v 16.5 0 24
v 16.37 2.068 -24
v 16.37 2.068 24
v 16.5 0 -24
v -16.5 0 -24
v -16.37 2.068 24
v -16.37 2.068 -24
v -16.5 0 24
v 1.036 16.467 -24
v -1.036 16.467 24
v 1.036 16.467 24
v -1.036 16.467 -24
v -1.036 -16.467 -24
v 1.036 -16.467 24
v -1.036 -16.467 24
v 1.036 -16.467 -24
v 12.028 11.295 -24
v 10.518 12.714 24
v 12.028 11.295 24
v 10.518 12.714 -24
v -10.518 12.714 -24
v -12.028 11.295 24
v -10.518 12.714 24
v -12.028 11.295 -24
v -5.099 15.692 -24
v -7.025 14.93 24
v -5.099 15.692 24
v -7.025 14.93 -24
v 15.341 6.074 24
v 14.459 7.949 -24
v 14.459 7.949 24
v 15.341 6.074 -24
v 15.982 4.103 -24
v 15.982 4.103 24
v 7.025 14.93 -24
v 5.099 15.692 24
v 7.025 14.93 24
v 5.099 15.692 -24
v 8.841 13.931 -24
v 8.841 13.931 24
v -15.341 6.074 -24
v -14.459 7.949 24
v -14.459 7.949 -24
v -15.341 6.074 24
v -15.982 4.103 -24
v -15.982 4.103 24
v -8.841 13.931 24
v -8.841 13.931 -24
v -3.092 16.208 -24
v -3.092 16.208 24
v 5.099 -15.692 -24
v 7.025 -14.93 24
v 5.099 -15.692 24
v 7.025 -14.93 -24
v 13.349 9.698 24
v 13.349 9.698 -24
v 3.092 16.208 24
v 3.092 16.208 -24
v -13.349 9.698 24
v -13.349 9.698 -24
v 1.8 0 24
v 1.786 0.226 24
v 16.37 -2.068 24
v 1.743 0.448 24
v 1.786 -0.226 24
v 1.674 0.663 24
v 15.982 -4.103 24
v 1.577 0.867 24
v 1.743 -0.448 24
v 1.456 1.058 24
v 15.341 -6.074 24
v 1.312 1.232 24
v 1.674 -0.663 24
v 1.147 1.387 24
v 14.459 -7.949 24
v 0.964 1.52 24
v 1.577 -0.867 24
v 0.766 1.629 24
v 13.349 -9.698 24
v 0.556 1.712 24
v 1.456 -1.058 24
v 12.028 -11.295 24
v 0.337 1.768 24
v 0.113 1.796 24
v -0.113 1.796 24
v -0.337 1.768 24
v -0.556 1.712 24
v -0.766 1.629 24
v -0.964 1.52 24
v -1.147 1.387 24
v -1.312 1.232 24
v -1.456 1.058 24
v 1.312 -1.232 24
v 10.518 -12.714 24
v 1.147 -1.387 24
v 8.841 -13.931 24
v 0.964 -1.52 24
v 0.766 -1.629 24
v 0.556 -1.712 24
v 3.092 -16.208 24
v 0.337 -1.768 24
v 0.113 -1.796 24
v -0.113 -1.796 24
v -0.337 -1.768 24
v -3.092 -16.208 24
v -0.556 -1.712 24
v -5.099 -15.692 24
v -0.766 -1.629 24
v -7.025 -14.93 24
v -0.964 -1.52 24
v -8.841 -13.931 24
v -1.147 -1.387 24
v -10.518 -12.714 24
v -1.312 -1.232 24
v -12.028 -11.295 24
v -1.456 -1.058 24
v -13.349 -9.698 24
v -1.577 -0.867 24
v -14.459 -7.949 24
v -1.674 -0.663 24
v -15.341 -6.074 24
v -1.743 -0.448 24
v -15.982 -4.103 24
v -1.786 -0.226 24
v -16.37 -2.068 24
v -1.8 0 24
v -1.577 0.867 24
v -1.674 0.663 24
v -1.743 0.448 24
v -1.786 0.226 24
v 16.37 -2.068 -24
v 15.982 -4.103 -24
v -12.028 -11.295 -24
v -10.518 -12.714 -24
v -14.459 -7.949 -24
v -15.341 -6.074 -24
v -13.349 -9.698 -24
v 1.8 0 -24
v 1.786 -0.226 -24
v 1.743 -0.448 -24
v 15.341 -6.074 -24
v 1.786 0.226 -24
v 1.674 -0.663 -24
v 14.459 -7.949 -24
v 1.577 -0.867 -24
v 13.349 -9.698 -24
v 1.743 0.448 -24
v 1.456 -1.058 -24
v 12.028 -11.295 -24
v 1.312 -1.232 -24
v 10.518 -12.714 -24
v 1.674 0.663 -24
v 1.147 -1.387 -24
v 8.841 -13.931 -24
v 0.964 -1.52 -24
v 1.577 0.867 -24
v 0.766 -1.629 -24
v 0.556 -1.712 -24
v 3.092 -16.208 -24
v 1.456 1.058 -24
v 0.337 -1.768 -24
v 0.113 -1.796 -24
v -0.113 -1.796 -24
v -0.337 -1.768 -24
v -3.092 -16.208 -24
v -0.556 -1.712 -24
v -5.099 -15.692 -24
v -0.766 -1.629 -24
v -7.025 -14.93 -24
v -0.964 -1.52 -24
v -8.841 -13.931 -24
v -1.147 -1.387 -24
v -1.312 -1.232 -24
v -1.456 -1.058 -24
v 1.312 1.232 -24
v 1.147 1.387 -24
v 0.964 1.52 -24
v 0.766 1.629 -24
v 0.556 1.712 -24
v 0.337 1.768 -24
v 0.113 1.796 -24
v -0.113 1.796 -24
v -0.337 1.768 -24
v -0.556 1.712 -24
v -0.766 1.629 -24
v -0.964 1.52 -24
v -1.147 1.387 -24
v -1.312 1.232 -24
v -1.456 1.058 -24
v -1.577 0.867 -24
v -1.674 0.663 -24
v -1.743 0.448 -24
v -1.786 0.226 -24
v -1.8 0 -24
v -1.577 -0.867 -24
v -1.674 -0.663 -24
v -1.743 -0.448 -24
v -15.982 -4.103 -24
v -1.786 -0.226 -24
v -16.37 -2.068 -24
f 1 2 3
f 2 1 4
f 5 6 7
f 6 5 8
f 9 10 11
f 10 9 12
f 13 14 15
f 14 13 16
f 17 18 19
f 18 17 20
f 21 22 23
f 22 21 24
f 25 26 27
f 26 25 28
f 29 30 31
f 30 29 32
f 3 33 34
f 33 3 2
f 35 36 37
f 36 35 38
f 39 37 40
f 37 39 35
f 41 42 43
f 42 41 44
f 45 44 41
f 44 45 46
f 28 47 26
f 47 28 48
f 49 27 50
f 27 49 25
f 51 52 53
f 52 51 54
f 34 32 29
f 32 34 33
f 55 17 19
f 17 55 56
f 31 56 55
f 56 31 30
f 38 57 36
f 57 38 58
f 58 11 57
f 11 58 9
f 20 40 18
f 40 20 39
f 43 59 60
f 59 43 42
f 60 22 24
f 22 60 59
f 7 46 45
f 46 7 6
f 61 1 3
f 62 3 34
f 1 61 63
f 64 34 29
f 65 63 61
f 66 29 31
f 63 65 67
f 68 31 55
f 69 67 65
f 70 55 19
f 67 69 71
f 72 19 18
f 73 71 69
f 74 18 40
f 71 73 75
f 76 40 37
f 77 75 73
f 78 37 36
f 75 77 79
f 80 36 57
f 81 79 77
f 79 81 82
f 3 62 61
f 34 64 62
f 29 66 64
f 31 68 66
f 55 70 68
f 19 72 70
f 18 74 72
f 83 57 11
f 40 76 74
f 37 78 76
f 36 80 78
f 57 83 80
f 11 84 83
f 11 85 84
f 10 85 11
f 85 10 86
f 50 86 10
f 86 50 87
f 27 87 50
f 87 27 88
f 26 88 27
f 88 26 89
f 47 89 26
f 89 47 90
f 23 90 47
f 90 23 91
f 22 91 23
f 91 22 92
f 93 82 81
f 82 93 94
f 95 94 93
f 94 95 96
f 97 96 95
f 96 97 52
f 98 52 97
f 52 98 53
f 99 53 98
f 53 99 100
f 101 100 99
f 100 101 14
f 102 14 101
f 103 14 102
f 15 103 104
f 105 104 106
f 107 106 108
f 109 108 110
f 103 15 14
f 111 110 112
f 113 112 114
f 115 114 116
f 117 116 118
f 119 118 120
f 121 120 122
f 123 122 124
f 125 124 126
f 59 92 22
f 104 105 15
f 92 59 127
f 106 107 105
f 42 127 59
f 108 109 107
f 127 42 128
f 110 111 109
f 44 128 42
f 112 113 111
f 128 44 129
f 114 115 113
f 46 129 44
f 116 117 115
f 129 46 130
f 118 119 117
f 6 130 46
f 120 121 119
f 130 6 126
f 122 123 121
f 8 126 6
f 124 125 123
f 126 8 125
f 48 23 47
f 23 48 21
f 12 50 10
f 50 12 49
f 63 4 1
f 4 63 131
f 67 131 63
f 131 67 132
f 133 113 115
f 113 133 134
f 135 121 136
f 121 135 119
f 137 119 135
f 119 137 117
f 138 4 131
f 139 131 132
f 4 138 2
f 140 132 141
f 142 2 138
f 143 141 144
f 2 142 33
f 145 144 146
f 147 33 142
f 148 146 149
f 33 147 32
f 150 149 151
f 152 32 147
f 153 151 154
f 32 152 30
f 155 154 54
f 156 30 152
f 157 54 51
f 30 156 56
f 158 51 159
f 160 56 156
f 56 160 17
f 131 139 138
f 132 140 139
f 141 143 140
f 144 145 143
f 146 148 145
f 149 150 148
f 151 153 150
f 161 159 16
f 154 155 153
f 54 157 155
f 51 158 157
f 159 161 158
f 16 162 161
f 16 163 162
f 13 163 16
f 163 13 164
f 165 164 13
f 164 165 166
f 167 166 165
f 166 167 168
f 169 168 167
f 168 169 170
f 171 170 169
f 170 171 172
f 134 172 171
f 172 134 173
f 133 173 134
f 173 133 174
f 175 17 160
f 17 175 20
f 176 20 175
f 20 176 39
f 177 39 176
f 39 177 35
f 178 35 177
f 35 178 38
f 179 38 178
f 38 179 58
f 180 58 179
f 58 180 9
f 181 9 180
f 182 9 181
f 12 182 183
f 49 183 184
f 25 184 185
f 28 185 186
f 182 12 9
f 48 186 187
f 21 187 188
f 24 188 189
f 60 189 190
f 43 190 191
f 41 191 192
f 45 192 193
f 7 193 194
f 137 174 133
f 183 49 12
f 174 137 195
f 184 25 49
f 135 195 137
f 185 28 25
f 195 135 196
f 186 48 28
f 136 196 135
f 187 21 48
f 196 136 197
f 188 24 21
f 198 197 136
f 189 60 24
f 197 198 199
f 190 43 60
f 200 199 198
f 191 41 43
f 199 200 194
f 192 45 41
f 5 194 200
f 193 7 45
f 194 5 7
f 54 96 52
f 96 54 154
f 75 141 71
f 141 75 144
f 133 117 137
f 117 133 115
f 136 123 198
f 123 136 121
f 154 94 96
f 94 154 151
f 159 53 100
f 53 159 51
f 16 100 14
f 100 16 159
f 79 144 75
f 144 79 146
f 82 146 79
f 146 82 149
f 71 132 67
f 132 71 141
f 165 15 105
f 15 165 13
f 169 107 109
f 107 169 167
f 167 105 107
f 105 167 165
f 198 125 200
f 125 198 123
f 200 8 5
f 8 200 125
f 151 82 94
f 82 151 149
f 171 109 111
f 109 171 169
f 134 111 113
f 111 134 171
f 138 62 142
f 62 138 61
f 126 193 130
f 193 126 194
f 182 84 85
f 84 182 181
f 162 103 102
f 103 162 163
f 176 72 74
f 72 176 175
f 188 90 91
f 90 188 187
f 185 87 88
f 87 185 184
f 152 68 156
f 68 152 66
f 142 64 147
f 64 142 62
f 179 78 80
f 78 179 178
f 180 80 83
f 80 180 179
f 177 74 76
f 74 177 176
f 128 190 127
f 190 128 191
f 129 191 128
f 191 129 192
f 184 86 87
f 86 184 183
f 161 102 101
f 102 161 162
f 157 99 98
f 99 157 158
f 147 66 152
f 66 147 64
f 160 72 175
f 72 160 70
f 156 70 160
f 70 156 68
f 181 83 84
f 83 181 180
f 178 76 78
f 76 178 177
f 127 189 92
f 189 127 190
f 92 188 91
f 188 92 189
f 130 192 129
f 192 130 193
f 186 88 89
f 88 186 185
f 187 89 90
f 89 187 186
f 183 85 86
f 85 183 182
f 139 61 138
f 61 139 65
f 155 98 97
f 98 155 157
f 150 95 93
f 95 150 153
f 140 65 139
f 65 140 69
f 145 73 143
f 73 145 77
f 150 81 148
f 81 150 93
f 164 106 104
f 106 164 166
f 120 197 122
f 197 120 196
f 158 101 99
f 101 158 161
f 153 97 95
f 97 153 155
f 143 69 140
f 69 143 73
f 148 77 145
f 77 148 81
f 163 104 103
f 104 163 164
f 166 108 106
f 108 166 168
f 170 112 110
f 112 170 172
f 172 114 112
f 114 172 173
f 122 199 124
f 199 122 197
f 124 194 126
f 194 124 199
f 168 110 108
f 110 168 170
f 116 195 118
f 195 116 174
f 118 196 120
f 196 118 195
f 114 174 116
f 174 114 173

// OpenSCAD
$fn = 50;


difference() {
	union() {
		translate(v = [0, 0, -24.0000000000]) {
			cylinder(h = 48, r = 16.5000000000);
		}
	}
	union() {
		translate(v = [0, 0, -100.0000000000]) {
			cylinder(h = 200, r = 1.8000000000);
		}
	}
}
